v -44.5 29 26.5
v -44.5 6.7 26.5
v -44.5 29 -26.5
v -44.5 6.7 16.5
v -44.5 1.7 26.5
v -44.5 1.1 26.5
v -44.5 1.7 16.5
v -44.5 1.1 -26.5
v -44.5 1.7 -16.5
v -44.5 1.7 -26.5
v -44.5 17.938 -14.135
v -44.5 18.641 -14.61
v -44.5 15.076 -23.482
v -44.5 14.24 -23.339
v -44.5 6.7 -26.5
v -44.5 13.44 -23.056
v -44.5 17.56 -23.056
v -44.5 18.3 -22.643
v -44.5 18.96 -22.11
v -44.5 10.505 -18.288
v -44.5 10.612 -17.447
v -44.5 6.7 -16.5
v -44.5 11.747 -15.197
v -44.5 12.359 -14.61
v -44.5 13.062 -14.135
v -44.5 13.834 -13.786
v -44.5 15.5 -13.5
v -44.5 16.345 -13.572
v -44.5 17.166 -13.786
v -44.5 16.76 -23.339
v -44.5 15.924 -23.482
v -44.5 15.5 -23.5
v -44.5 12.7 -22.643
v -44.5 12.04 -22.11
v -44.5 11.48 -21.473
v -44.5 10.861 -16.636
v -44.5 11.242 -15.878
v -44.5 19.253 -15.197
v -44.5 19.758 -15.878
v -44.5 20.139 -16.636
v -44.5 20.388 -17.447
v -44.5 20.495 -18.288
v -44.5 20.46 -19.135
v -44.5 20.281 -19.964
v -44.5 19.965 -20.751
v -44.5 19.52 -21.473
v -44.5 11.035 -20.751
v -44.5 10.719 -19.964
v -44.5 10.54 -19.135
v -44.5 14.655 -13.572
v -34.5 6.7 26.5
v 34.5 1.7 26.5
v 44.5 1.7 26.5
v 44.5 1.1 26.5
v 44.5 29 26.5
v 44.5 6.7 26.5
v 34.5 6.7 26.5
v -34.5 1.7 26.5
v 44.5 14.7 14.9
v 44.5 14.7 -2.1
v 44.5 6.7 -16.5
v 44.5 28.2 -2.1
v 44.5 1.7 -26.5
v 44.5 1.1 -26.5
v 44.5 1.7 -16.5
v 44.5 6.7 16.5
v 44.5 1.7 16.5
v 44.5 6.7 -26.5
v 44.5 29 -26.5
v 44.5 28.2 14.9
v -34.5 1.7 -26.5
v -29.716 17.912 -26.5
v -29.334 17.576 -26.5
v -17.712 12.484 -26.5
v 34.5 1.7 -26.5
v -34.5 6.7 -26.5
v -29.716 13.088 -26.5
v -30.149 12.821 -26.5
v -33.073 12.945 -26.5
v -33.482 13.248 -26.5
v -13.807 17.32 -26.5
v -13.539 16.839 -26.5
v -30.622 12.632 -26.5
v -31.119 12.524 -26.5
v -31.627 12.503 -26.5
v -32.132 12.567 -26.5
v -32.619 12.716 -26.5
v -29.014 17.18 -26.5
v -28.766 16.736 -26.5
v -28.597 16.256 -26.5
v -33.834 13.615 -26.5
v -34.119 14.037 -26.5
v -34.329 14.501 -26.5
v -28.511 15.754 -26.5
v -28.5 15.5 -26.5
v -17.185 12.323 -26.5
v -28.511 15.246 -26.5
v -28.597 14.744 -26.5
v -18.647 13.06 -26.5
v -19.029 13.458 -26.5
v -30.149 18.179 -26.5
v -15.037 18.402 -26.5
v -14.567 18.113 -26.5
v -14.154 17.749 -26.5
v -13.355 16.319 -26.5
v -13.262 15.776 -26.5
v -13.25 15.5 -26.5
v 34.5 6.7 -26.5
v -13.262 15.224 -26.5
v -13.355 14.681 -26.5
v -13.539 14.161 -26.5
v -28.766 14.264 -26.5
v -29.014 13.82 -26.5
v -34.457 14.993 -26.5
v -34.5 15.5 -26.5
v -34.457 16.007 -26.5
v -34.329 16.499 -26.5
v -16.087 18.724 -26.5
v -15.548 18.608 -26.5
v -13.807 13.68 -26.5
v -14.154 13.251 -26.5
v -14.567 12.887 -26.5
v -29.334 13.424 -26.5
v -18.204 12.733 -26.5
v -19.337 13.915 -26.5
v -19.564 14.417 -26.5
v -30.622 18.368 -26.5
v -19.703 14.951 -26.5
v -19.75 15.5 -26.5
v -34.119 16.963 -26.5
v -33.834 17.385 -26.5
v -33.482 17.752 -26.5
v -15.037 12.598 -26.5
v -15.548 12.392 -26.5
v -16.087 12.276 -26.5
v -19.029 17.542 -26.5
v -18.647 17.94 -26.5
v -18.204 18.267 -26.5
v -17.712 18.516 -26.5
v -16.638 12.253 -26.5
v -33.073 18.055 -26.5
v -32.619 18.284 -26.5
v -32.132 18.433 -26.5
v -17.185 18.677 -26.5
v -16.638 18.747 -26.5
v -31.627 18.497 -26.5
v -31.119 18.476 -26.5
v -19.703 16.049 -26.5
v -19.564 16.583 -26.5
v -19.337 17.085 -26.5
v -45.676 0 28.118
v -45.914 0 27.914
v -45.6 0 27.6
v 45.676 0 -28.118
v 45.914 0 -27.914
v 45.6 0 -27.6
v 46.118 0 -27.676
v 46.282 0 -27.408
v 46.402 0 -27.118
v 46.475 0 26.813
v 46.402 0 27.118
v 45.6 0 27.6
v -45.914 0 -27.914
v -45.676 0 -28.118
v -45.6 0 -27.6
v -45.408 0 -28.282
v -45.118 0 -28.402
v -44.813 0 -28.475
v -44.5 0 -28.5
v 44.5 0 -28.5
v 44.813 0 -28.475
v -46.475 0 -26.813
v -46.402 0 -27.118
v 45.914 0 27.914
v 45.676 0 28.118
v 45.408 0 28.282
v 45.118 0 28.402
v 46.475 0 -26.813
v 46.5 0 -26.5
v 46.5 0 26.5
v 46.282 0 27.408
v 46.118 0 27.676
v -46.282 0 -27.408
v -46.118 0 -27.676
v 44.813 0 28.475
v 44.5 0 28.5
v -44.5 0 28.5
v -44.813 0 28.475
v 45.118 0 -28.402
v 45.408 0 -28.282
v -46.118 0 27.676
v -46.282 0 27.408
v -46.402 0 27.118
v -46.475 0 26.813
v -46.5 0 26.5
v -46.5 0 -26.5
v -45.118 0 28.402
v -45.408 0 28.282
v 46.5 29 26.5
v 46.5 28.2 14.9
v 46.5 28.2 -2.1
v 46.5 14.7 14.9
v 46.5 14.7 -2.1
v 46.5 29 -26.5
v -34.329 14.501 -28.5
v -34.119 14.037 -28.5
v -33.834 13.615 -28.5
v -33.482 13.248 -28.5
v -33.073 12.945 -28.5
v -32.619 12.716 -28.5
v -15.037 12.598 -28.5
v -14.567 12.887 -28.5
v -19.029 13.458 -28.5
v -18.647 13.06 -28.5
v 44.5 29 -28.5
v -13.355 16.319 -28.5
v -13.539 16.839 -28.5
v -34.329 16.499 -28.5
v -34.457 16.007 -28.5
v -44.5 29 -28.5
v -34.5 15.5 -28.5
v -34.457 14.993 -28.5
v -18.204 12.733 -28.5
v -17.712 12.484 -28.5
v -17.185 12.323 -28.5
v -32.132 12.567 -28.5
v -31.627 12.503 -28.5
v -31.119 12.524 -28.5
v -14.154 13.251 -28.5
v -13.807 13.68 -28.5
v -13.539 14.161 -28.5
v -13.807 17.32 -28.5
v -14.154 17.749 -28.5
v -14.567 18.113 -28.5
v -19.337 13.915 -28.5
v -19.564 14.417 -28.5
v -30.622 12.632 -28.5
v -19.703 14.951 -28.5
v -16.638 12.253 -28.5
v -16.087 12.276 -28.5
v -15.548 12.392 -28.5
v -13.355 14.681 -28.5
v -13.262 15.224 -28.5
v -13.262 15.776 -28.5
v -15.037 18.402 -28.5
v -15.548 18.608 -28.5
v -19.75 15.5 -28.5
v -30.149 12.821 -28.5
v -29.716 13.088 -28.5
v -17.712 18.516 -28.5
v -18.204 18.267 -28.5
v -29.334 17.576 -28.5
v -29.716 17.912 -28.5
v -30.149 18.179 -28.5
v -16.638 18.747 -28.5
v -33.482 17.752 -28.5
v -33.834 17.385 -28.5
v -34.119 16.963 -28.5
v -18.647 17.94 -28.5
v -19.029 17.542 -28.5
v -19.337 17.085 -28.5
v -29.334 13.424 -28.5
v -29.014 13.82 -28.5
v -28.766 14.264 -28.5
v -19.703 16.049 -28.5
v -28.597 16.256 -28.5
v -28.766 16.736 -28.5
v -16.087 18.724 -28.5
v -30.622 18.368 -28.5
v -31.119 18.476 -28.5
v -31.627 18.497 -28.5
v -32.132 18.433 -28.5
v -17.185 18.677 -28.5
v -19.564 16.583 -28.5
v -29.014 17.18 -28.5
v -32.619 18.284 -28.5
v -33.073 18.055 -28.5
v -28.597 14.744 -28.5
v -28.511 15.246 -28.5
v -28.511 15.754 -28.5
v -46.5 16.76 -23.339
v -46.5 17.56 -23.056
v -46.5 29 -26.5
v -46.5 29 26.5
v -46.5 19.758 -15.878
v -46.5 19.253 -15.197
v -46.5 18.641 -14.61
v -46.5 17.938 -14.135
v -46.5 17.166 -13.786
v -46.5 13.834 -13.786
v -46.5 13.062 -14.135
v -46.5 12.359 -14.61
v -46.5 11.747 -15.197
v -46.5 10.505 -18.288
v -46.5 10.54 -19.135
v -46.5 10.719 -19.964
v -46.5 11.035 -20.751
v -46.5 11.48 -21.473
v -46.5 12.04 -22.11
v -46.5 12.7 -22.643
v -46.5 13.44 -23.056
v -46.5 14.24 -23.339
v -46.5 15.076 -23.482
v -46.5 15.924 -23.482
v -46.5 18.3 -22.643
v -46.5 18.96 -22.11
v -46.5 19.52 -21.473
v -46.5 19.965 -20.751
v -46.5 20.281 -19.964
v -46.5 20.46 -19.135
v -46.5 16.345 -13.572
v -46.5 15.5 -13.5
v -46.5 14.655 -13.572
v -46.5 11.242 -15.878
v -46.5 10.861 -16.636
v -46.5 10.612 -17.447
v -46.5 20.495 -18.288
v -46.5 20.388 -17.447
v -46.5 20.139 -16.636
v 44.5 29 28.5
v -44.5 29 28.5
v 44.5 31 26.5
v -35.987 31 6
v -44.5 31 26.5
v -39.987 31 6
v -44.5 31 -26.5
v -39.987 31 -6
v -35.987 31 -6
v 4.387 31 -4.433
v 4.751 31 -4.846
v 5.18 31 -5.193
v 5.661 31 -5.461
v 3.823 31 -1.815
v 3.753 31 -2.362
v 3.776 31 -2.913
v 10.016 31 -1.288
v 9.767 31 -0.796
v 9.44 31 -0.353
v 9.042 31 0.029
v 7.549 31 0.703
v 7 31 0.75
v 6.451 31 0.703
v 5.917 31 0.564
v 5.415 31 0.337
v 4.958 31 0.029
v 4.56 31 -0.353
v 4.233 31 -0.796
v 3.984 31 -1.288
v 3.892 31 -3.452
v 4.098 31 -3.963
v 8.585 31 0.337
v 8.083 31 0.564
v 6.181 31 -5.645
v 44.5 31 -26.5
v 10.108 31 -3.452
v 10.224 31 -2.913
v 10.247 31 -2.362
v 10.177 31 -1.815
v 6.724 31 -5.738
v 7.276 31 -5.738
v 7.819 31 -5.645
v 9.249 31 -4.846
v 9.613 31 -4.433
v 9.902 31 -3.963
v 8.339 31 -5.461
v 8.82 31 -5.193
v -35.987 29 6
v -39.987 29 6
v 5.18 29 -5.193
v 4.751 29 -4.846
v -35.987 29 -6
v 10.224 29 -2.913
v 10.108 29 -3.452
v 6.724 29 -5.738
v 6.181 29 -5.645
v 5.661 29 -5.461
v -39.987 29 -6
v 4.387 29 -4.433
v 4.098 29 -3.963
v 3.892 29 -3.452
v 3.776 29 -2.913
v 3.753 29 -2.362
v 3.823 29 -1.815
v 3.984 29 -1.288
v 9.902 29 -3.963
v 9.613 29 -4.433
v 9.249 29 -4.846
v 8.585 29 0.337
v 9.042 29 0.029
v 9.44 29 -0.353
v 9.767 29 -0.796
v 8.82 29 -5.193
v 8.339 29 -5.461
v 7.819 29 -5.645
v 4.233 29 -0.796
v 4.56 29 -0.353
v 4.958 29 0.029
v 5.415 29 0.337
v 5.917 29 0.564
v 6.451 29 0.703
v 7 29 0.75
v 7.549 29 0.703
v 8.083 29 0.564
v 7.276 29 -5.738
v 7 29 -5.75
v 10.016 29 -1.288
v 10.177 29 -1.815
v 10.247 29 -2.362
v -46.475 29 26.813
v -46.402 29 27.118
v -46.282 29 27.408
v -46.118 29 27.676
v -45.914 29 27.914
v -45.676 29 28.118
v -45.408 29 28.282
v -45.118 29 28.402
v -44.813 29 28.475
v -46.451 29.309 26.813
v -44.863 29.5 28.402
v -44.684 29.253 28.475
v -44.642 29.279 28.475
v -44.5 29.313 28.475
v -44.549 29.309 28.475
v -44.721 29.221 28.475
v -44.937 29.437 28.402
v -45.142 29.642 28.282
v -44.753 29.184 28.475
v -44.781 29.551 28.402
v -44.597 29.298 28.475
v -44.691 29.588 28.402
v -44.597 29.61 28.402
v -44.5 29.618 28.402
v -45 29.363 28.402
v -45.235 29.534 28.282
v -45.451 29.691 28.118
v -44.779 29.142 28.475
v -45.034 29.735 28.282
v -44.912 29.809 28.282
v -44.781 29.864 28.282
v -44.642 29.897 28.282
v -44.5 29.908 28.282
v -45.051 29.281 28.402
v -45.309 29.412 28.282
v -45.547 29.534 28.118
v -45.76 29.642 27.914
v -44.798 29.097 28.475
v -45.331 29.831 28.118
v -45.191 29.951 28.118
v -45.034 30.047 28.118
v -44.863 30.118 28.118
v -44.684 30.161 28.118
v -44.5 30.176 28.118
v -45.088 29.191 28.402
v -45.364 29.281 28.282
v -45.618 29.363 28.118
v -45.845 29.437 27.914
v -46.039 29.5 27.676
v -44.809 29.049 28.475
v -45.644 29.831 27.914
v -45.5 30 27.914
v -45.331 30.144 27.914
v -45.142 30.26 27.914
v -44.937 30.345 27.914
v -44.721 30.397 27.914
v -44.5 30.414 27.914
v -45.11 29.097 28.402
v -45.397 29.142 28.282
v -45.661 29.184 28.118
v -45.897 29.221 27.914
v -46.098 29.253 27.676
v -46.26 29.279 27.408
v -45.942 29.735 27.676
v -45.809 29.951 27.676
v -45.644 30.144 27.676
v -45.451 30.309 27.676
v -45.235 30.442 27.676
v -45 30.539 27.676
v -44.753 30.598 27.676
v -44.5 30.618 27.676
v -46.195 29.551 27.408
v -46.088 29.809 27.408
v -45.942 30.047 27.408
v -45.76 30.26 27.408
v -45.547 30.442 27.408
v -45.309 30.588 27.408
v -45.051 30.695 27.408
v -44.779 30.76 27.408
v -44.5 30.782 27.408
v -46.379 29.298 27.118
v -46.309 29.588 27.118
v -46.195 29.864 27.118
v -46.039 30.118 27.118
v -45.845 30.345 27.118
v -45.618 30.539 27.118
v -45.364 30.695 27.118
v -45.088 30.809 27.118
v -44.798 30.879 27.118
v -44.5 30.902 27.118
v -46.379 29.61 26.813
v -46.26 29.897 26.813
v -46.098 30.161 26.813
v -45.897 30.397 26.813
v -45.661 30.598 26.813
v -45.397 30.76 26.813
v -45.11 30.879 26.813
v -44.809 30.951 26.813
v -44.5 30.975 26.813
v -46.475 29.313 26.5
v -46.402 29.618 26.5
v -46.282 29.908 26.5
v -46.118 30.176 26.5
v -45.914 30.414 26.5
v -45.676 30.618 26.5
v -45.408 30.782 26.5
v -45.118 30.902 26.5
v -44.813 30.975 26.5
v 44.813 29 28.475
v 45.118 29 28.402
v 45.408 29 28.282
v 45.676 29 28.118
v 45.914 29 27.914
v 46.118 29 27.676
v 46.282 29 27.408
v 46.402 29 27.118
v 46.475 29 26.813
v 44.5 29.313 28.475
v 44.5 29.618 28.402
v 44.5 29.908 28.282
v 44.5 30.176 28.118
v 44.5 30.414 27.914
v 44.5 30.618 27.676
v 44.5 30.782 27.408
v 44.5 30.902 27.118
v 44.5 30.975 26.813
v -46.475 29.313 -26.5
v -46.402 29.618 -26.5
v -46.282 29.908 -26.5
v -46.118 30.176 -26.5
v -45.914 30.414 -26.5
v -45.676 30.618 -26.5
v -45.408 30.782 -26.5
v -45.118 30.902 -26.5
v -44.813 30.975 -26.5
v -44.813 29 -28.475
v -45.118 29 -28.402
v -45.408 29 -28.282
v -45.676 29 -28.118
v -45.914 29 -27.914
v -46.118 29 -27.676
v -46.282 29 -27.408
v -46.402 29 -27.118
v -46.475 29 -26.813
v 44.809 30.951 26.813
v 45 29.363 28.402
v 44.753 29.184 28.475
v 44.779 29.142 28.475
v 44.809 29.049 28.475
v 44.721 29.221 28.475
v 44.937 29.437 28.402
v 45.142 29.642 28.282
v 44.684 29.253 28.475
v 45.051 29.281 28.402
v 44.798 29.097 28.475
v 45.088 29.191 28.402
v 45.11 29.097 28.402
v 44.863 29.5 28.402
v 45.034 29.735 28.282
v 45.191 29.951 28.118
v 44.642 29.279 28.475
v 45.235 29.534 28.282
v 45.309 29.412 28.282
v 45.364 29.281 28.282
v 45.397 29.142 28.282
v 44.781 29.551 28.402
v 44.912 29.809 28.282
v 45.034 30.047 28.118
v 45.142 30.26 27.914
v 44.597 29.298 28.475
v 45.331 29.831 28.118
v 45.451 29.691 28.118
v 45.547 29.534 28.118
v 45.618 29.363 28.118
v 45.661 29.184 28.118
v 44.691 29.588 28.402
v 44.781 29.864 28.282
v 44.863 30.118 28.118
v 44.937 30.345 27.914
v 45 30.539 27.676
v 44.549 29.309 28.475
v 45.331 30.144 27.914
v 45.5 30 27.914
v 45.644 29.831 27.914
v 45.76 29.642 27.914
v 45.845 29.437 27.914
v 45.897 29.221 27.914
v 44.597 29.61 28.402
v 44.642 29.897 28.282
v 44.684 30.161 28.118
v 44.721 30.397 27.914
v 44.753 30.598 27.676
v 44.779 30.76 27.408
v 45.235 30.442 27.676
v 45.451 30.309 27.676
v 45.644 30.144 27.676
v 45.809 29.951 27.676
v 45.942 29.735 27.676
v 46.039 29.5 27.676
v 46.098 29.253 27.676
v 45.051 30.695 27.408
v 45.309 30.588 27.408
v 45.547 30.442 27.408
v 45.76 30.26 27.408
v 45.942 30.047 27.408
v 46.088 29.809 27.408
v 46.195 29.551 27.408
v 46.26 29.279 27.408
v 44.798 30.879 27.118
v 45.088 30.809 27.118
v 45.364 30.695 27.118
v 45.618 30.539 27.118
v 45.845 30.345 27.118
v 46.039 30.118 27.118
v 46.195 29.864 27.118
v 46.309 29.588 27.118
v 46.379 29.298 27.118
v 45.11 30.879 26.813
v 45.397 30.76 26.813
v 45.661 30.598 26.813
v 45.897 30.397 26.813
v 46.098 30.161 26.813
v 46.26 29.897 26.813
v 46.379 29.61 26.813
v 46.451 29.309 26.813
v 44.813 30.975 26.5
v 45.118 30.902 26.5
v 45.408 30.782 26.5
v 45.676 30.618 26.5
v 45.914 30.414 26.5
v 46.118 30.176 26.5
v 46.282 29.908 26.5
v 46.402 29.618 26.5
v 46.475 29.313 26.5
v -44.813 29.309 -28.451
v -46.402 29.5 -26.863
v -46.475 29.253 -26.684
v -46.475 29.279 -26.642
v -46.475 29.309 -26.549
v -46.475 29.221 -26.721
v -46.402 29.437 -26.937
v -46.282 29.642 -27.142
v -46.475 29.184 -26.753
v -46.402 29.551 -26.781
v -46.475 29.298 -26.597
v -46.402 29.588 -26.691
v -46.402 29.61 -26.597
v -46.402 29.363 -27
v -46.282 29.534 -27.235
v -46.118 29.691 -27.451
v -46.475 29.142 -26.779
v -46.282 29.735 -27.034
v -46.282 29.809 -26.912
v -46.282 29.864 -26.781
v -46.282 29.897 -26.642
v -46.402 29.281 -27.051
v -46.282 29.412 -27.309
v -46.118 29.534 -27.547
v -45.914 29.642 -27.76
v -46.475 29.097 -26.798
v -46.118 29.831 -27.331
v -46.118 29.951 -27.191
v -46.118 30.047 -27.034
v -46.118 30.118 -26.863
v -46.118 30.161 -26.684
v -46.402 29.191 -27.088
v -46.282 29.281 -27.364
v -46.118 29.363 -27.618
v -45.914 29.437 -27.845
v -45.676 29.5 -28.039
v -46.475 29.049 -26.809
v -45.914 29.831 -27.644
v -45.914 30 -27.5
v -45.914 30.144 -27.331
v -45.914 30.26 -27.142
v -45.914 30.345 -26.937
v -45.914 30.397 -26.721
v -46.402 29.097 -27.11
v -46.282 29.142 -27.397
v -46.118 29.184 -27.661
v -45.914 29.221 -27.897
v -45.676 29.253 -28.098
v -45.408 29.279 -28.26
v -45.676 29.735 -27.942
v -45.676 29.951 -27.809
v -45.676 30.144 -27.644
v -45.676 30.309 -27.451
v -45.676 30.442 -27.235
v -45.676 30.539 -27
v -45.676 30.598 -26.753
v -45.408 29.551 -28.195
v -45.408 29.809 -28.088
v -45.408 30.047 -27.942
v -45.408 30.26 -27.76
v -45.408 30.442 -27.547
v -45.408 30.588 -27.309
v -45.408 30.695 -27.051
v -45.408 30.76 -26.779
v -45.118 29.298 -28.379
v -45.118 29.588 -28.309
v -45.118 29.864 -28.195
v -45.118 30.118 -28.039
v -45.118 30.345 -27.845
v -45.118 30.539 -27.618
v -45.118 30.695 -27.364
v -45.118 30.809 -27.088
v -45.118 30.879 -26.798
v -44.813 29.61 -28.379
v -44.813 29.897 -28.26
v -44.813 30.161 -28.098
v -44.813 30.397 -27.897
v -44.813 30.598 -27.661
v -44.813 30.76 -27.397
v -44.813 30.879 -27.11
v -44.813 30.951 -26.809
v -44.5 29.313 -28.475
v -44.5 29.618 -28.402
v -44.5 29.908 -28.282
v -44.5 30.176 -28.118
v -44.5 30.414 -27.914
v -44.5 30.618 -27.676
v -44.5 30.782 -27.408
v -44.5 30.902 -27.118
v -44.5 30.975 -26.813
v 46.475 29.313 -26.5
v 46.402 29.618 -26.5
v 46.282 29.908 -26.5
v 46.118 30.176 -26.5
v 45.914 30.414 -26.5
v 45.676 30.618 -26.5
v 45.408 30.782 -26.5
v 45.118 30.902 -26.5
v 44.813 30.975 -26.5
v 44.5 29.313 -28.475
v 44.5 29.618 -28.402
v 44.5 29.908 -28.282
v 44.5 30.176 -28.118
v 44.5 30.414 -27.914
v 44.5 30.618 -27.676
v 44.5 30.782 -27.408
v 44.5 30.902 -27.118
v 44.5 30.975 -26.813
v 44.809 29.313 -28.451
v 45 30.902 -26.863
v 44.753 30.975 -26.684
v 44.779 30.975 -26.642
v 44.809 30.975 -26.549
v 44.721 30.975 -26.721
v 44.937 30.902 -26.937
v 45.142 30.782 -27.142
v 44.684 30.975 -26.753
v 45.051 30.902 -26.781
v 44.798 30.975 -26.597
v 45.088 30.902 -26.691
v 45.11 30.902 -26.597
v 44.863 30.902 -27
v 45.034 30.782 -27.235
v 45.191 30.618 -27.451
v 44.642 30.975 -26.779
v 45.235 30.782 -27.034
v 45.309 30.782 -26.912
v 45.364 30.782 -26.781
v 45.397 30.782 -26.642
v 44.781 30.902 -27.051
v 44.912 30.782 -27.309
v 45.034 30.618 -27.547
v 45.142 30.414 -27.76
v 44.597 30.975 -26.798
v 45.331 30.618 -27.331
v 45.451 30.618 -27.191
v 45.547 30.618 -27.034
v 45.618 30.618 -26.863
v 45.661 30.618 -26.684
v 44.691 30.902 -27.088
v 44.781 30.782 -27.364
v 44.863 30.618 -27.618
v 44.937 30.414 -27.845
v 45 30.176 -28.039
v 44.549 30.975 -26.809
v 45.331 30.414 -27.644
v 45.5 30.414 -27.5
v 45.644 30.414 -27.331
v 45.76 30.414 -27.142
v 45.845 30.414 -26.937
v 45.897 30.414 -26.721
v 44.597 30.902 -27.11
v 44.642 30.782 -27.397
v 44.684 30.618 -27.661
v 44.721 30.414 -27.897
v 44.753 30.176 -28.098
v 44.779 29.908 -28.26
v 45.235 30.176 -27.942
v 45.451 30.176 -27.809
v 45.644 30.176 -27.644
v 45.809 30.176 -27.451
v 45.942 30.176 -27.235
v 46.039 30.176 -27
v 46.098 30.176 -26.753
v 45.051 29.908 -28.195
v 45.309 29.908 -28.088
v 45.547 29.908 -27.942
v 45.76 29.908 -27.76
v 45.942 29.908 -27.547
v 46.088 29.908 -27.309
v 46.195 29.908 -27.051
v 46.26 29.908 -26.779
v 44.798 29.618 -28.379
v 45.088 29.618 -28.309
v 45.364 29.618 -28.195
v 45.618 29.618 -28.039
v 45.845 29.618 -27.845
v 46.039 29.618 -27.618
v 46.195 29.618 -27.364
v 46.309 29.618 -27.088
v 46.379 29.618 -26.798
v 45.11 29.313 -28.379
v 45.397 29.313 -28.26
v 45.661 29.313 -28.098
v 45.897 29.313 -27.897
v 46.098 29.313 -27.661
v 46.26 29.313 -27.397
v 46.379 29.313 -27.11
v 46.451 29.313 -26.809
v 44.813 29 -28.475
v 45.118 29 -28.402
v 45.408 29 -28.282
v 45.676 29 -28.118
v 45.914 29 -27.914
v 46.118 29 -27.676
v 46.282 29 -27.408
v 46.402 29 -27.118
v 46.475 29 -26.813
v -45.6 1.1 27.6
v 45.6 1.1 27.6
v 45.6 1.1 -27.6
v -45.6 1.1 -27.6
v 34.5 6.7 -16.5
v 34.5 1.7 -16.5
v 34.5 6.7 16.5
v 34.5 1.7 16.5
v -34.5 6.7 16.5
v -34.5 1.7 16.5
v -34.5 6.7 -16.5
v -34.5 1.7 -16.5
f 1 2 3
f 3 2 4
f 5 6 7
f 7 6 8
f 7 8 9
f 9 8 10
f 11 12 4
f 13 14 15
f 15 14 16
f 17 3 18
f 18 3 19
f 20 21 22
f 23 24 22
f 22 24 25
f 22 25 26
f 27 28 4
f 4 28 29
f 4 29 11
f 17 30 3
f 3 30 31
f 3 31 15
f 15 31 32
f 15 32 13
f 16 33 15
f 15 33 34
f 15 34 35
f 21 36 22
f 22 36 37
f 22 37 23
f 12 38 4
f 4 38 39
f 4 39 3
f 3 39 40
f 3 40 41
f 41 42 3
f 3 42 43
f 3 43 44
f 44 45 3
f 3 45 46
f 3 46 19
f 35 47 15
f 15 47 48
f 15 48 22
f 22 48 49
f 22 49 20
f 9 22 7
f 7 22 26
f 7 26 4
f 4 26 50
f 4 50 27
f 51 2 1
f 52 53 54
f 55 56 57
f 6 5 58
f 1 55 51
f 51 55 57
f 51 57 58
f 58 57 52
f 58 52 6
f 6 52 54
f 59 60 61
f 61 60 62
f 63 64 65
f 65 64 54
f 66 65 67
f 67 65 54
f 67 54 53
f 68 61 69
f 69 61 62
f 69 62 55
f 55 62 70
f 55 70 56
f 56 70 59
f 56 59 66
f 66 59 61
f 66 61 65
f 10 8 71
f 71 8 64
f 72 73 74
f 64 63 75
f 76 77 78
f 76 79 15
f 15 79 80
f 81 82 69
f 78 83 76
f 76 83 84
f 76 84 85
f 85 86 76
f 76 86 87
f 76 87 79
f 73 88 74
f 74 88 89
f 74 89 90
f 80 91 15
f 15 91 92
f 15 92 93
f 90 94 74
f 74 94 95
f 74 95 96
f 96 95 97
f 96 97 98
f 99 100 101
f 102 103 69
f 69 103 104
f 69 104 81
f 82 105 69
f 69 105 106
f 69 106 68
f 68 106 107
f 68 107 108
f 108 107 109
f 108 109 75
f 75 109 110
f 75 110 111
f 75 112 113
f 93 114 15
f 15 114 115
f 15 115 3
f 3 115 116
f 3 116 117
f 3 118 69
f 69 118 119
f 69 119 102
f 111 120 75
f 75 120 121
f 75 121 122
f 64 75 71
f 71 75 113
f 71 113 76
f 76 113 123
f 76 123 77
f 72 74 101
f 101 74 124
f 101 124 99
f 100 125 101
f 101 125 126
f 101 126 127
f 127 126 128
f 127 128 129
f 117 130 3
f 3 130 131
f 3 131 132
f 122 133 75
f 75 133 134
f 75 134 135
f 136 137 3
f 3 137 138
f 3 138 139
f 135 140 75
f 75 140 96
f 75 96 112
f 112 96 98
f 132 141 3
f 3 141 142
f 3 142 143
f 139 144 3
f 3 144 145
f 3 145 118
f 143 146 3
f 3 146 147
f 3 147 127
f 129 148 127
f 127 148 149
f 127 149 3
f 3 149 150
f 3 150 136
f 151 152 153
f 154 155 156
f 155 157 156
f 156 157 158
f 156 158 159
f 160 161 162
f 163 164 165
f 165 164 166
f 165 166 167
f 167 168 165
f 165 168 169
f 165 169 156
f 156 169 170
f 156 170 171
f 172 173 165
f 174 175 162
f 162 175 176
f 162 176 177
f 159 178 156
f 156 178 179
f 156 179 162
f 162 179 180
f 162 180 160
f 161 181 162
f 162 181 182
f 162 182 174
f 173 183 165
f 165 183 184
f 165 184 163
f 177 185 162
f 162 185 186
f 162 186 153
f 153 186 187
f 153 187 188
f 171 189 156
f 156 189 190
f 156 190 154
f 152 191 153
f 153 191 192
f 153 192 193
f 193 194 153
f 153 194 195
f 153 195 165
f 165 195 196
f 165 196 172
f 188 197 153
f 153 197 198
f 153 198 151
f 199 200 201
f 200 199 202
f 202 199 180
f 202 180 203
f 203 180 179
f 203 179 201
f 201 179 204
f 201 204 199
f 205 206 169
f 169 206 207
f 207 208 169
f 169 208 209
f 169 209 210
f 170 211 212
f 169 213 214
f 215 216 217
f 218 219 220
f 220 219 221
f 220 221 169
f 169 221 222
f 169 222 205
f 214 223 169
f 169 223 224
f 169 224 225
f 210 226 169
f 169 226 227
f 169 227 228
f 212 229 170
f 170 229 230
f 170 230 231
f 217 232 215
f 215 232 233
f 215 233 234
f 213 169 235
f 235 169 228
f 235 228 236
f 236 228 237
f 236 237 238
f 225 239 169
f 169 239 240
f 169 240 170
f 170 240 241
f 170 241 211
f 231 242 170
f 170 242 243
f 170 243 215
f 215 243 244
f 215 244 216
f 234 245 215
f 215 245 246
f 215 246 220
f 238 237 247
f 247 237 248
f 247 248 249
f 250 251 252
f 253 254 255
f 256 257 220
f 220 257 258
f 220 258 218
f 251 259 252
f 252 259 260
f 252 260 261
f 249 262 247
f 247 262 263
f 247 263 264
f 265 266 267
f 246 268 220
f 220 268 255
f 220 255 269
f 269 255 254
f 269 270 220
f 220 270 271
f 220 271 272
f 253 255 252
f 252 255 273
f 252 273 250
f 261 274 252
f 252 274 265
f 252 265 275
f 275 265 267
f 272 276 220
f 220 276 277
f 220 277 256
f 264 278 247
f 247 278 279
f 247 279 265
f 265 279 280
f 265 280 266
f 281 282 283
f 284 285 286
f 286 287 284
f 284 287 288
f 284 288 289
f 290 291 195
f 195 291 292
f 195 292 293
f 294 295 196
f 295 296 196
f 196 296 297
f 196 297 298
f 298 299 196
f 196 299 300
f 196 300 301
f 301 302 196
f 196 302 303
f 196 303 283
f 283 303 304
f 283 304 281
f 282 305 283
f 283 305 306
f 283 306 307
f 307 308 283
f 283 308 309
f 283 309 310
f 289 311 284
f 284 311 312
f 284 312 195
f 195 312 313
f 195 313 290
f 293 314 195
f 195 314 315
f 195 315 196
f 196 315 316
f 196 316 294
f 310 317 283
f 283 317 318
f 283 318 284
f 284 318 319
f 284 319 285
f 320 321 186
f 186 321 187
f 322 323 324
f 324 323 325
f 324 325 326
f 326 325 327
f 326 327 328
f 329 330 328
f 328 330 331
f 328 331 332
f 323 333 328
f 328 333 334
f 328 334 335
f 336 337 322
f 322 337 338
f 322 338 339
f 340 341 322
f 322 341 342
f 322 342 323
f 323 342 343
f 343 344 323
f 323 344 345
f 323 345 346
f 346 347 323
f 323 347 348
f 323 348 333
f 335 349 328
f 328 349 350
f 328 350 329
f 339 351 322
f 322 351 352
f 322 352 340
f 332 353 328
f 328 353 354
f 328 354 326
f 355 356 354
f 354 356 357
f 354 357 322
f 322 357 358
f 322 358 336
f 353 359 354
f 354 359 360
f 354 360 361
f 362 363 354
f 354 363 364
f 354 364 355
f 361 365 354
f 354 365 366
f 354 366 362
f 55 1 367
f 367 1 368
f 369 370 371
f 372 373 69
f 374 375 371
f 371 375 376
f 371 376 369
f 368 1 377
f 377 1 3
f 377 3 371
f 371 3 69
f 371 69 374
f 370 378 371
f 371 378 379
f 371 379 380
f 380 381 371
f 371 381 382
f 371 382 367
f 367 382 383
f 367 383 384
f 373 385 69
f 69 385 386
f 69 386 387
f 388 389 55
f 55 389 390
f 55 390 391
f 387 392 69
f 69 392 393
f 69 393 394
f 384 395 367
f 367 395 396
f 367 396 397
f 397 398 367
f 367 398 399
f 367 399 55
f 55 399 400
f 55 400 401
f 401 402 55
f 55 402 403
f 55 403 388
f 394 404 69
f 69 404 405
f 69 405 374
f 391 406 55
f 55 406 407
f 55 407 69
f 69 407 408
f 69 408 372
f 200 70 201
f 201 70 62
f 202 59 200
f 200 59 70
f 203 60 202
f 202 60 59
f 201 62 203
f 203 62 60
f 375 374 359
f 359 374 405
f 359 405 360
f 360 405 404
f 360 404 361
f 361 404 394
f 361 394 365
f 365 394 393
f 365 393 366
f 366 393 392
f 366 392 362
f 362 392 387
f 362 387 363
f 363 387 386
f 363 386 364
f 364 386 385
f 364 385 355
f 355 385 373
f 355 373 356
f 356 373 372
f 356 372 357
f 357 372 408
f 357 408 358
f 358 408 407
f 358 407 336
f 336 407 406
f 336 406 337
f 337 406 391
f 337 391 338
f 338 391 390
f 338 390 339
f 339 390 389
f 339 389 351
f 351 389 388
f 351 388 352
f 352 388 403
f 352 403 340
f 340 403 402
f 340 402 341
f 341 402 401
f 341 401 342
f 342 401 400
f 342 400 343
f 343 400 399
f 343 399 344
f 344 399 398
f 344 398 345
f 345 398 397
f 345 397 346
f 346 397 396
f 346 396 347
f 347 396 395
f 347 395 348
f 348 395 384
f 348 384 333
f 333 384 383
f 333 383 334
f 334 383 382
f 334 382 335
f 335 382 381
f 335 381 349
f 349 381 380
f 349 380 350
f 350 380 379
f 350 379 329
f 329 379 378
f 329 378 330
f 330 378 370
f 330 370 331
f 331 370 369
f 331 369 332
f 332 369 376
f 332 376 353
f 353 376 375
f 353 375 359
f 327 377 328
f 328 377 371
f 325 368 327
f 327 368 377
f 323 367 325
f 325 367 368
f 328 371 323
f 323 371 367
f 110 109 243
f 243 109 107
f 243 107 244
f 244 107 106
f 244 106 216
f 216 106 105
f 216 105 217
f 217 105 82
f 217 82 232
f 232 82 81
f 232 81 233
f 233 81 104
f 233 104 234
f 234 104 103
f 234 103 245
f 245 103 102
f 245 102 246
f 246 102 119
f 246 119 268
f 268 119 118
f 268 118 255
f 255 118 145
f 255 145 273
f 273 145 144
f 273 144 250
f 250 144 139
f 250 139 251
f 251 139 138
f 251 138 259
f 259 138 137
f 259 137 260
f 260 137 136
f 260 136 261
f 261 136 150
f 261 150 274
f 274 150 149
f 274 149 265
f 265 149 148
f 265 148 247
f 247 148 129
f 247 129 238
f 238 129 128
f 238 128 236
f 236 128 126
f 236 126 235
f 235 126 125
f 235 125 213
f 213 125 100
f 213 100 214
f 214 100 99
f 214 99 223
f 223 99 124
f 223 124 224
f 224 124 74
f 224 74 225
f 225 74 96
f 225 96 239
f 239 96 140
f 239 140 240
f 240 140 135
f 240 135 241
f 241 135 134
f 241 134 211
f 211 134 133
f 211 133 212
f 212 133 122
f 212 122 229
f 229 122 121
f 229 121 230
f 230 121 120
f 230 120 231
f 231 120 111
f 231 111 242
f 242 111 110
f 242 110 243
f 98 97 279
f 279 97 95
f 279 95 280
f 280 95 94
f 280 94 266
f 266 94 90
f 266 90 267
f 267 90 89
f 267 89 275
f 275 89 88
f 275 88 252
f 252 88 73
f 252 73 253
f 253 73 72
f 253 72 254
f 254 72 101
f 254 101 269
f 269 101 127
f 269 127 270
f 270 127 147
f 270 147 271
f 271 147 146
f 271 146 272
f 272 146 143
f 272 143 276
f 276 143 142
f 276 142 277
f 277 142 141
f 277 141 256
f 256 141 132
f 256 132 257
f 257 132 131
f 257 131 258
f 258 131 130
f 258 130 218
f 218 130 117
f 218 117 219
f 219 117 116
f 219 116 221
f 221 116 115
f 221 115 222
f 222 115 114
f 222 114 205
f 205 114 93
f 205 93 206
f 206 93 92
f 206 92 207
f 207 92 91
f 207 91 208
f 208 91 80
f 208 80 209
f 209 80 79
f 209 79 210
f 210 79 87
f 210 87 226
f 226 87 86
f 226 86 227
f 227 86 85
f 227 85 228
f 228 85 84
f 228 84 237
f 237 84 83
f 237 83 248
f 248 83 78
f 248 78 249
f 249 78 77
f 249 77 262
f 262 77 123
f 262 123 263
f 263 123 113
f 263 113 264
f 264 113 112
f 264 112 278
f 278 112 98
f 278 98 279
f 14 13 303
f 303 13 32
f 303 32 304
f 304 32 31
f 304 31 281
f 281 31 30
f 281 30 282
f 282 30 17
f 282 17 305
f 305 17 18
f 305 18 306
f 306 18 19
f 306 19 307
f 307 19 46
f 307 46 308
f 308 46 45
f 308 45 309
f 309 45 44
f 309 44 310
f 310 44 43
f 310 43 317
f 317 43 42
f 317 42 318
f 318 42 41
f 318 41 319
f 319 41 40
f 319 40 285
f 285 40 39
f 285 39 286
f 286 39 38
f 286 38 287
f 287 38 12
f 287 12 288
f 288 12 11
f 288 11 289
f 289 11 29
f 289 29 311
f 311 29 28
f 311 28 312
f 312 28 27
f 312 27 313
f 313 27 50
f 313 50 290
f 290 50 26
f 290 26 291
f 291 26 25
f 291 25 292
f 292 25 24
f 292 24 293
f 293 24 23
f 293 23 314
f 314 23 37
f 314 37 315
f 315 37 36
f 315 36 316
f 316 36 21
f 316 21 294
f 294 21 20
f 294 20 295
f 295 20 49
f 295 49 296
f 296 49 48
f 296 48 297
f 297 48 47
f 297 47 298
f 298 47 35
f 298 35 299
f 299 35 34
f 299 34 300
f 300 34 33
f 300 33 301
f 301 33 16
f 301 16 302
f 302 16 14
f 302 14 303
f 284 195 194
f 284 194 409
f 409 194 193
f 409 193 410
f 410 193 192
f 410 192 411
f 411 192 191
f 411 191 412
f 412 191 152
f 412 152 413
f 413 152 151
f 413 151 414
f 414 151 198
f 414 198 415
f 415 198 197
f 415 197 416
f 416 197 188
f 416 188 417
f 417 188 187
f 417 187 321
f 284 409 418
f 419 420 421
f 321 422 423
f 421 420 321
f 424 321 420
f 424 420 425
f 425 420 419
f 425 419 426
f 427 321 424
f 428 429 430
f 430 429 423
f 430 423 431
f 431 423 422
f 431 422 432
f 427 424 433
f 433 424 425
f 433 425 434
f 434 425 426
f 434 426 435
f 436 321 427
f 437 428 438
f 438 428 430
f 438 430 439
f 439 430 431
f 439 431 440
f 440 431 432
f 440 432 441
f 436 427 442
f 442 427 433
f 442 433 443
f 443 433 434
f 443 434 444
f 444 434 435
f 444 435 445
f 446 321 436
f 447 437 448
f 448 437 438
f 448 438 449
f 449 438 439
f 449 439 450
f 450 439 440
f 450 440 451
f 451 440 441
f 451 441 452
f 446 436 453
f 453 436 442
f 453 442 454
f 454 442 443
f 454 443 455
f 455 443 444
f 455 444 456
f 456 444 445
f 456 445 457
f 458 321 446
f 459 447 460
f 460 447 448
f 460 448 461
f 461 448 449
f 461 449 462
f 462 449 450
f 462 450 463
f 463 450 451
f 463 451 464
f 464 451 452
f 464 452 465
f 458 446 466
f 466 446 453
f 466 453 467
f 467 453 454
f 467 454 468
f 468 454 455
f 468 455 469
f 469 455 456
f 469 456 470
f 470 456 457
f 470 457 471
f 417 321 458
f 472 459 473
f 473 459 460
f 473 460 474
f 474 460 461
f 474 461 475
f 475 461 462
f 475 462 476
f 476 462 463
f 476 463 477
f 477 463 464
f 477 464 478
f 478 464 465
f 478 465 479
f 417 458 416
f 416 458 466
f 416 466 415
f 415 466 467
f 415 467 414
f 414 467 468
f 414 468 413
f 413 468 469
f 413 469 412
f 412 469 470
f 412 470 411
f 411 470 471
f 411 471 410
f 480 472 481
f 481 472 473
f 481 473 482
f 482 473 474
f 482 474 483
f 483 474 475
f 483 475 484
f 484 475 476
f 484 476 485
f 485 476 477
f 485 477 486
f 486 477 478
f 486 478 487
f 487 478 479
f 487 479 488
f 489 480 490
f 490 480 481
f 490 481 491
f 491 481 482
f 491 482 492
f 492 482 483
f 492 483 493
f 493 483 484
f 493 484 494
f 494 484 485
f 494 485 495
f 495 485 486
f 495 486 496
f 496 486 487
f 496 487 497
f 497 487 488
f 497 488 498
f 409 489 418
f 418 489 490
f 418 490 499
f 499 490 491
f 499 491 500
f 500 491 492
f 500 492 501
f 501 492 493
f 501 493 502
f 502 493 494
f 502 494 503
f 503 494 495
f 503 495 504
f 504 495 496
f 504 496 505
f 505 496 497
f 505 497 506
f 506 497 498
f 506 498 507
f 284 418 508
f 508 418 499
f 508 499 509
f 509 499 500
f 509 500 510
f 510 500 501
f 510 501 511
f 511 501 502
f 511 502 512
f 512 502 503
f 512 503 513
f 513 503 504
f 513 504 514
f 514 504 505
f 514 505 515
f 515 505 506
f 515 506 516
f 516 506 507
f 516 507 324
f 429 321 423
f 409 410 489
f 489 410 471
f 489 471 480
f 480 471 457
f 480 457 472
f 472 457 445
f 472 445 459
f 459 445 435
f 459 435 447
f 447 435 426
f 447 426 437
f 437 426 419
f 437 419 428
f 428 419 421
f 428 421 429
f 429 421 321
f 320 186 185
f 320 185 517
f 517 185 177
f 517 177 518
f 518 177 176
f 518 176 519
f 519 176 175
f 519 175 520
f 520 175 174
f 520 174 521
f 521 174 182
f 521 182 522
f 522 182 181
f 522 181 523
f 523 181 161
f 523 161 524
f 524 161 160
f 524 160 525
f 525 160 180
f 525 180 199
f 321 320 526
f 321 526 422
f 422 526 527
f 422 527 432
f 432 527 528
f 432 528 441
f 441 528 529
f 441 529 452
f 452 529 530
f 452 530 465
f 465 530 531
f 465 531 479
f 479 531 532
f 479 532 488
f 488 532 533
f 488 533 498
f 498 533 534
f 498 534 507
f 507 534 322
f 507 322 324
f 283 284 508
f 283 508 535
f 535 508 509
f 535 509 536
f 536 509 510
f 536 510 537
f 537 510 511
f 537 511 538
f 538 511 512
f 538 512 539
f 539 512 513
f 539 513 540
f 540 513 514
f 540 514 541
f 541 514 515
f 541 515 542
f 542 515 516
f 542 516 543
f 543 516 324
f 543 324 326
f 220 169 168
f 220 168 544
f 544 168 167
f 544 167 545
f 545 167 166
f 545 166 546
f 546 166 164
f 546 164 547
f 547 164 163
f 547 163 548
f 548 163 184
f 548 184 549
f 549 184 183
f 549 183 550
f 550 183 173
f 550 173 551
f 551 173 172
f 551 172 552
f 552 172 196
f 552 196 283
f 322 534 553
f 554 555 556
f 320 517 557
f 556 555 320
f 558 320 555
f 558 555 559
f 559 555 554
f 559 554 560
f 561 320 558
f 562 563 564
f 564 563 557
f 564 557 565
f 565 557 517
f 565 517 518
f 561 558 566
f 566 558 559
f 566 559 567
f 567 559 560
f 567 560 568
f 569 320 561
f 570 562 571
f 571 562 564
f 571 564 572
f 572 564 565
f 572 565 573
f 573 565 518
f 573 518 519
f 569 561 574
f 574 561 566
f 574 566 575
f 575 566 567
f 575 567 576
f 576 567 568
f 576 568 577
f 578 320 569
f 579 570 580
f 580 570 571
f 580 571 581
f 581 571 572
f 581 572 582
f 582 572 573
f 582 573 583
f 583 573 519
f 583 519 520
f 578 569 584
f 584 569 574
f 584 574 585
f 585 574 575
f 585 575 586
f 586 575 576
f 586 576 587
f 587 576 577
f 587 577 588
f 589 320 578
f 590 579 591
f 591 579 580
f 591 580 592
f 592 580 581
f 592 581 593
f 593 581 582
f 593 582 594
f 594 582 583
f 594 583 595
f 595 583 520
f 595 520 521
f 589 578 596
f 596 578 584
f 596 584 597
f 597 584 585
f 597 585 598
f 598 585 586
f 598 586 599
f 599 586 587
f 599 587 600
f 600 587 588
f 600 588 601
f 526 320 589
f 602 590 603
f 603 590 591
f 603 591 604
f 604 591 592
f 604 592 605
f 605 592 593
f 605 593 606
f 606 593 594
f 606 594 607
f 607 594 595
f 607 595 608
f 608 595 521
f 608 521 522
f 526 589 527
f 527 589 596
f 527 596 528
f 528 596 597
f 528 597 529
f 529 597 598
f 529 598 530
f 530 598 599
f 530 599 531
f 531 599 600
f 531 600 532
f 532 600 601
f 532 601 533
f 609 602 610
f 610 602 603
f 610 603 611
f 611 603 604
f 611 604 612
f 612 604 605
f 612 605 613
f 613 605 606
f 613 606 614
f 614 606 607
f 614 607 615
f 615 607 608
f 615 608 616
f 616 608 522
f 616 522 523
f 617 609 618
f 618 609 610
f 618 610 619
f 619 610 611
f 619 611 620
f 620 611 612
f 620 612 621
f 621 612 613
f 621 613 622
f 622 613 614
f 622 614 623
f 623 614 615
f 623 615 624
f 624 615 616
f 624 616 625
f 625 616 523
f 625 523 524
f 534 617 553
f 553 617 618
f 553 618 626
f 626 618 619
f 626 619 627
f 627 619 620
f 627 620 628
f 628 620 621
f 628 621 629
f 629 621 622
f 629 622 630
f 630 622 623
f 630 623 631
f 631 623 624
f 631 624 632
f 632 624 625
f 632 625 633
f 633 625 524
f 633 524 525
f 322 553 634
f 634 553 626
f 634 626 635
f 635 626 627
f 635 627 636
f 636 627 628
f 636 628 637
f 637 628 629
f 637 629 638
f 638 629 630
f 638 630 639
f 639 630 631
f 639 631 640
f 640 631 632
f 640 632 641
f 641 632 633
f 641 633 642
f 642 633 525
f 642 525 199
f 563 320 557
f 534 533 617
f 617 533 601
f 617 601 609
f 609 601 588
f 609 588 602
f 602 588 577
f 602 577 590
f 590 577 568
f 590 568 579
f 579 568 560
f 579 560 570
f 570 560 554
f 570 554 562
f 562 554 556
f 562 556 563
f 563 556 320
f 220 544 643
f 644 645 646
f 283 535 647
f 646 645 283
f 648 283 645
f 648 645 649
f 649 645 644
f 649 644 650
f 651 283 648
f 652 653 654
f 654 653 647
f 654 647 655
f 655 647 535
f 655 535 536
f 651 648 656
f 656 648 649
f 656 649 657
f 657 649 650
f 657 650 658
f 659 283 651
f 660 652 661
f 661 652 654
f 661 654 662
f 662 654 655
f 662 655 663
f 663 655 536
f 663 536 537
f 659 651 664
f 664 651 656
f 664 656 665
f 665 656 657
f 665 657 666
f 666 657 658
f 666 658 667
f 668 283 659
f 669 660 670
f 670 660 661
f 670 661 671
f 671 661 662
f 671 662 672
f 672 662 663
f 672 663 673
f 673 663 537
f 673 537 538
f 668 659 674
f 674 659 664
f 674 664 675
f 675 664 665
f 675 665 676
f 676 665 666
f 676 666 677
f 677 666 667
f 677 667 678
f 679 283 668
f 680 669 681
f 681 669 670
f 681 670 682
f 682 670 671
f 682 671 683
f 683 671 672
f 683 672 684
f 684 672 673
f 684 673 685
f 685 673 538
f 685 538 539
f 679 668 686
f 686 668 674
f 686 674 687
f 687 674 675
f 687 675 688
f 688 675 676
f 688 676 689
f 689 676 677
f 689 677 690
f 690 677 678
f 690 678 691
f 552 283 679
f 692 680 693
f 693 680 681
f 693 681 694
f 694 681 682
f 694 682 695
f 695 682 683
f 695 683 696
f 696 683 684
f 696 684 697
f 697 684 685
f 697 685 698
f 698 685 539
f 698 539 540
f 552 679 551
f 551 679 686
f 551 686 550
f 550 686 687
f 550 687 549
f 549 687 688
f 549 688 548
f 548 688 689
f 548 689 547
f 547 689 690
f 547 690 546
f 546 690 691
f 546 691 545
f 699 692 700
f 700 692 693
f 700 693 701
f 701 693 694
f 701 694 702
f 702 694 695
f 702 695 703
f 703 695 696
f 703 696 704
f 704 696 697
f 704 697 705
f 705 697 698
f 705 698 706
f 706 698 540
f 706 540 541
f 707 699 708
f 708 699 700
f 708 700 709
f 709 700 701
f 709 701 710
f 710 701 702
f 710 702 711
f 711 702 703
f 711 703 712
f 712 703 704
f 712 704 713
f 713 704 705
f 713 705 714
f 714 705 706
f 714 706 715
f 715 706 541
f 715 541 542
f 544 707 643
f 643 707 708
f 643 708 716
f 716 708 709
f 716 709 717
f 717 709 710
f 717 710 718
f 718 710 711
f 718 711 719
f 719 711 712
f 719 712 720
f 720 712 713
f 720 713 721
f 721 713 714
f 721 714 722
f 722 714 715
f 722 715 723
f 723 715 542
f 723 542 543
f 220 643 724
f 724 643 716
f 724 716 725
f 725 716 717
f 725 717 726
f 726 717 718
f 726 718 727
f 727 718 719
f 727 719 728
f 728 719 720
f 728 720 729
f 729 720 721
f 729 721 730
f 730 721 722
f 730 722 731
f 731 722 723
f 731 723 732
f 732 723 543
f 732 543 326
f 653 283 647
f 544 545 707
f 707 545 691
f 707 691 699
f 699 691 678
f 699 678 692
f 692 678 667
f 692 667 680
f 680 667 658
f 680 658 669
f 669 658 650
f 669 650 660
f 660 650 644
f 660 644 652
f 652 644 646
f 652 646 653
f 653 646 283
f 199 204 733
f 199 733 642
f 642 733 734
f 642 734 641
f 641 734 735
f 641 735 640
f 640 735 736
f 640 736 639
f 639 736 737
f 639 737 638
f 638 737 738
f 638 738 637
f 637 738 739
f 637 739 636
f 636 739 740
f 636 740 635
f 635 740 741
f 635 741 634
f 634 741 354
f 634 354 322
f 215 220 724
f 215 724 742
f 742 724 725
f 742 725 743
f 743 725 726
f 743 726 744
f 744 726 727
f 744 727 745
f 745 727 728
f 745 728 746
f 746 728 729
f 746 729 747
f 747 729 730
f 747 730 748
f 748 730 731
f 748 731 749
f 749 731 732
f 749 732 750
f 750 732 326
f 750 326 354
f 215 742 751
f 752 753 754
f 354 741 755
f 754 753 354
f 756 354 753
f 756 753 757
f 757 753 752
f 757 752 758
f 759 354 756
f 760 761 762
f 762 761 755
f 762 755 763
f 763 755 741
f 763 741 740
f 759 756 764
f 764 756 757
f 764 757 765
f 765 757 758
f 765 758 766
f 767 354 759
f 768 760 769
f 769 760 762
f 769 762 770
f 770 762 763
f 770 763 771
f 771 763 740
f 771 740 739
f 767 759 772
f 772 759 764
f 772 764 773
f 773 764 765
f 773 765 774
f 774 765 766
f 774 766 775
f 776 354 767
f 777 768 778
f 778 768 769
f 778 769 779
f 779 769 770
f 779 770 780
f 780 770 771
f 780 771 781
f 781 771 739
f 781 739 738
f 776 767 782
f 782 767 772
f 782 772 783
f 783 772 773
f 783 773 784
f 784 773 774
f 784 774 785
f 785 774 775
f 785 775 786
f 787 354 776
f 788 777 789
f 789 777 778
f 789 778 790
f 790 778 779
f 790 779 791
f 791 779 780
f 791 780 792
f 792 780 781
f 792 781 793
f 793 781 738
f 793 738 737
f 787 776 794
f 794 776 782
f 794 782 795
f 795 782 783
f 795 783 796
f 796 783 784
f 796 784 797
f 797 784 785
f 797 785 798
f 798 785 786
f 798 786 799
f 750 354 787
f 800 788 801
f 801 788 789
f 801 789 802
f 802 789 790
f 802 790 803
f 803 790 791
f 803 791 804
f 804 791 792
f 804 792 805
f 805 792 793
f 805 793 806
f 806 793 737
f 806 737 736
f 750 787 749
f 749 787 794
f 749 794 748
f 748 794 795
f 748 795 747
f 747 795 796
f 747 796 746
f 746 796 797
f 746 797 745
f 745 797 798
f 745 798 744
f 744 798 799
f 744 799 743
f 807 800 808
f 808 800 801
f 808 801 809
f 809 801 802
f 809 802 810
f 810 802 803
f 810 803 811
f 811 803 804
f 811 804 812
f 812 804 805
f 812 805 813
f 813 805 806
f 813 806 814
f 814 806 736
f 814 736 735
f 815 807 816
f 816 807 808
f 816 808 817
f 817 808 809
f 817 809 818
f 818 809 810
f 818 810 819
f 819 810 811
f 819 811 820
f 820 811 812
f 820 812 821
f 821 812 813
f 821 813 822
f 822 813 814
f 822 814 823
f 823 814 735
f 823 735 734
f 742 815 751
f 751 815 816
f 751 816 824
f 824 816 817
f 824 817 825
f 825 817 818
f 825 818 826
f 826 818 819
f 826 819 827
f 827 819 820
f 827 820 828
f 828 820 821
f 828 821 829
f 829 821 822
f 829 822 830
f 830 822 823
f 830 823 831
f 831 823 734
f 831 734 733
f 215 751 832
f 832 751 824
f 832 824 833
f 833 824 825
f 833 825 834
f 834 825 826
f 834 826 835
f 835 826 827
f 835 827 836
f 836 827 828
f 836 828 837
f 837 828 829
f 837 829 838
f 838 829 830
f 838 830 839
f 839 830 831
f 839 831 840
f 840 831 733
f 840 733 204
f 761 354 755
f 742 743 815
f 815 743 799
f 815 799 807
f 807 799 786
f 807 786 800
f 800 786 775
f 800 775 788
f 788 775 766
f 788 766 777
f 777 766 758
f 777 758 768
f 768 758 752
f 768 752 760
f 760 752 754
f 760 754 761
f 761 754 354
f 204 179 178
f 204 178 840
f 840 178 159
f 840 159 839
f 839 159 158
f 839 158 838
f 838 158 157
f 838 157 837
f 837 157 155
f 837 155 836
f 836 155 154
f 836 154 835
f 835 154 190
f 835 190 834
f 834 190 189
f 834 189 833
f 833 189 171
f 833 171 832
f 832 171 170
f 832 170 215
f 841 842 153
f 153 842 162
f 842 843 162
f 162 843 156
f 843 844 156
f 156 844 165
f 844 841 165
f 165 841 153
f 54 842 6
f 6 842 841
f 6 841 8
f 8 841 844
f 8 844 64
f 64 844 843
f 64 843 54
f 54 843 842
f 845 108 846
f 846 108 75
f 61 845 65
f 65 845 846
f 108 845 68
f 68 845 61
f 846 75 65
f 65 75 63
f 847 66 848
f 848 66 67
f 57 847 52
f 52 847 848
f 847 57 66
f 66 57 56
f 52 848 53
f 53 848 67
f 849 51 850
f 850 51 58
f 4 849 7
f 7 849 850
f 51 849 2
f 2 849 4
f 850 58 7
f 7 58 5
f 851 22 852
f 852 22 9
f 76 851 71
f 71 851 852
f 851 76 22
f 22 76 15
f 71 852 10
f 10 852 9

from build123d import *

# Parameters (mm, degrees)
SKETCH1_W           = 93
SKETCH1_H           = 57
BOSS_EXTRUDE1_DEPTH = 31
SHELL1_T            = -2
SKETCH2_W           = 17
SKETCH2_H           = 13.5
CUT_EXTRUDE1_DEPTH  = 2
SKETCH3_R           = 3.25
CUT_EXTRUDE2_DEPTH  = 2
SKETCH4_W           = 4
SKETCH4_H           = 12
CUT_EXTRUDE3_DEPTH  = 2
SKETCH5_R           = 3
SKETCH5_R_2         = 3.25
CUT_EXTRUDE4_DEPTH  = 2
SKETCH6_R           = 5
CUT_EXTRUDE5_DEPTH  = 2
FILLET1_R           = 2
SKETCH7_W           = 91.2
SKETCH7_H           = 55.2
SKETCH7_W_2         = 89
SKETCH7_H_2         = 53
CUT_EXTRUDE6_DEPTH  = 1.1
SKETCH8_W           = 10
SKETCH8_H           = 10
BOSS_EXTRUDE2_DEPTH = 5


with BuildPart() as part:
    # Sketch1 → Boss-Extrude1 (new body)
    with BuildSketch(Plane(origin=(0, 0, 0), x_dir=(1, 0, 0), z_dir=(0, 1, 0))):
        Rectangle(SKETCH1_W, SKETCH1_H)
    extrude(amount=BOSS_EXTRUDE1_DEPTH)

    # Shell1
    shell1_openings = [part.faces().sort_by_distance(p)[0] for p in [
        (0, 0, 0),
    ]]
    offset(amount=SHELL1_T, openings=shell1_openings, kind=Kind.INTERSECTION)

    # Sketch2 → Cut-Extrude1 (cut)
    with BuildSketch(Plane(origin=(46.5, 0, 0), x_dir=(0, 0, -1), z_dir=(1, 0, 0))):
        with Locations((-6.4, 21.45)):
            Rectangle(SKETCH2_W, SKETCH2_H)
    extrude(amount=-CUT_EXTRUDE1_DEPTH, mode=Mode.SUBTRACT)

    # Sketch3 → Cut-Extrude2 (cut)
    with BuildSketch(Plane(origin=(0, 31, 0), x_dir=(1, 0, 0), z_dir=(0, 1, 0))):
        with Locations((7, 2.5)):
            Circle(SKETCH3_R)
    extrude(amount=-CUT_EXTRUDE2_DEPTH, mode=Mode.SUBTRACT)

    # Sketch4 → Cut-Extrude3 (cut)
    with BuildSketch(Plane(origin=(0, 31, 0), x_dir=(1, 0, 0), z_dir=(0, 1, 0))):
        with Locations((-37.987270606, 0)):
            Rectangle(SKETCH4_W, SKETCH4_H)
    extrude(amount=-CUT_EXTRUDE3_DEPTH, mode=Mode.SUBTRACT)

    # Sketch5 → Cut-Extrude4 (cut)
    with BuildSketch(Plane(origin=(0, 0, -28.5), x_dir=(-1, 0, 0), z_dir=(0, 0, -1))):
        with Locations((31.5, 15.5)):
            Circle(SKETCH5_R)
        with Locations((16.5, 15.5)):
            Circle(SKETCH5_R_2)
    extrude(amount=-CUT_EXTRUDE4_DEPTH, mode=Mode.SUBTRACT)

    # Sketch6 → Cut-Extrude5 (cut)
    with BuildSketch(Plane.ZY.offset(46.5)):
        with Locations((-18.5, 15.5)):
            Circle(SKETCH6_R)
    extrude(amount=-CUT_EXTRUDE5_DEPTH, mode=Mode.SUBTRACT)

    # Fillet1
    fillet1_edges = [part.edges().sort_by_distance(p)[0] for p in [
        (-46.5, 31, 0),
        (0, 31, 28.5),
        (46.5, 31, 0),
        (46.5, 15.5, 28.5),
        (-46.5, 15.5, 28.5),
        (-46.5, 15.5, -28.5),
        (46.5, 15.5, -28.5),
        (0, 31, -28.5),
    ]]
    fillet(fillet1_edges, radius=FILLET1_R)

    # Sketch7 → Cut-Extrude6 (cut)
    with BuildSketch(Plane.XZ):
        Rectangle(SKETCH7_W, SKETCH7_H)
        Rectangle(SKETCH7_W_2, SKETCH7_H_2, mode=Mode.SUBTRACT)
    extrude(amount=-CUT_EXTRUDE6_DEPTH, mode=Mode.SUBTRACT)

    # Sketch8 → Boss-Extrude2 (add)
    with BuildSketch(Plane(origin=(0, 1.7, 0), x_dir=(-1, 0, 0), z_dir=(0, -1, 0))):
        with Locations((-39.5, 21.5)):
            Rectangle(SKETCH8_W, SKETCH8_H)
        with Locations((-39.5, -21.5)):
            Rectangle(SKETCH8_W, SKETCH8_H)
        with Locations((39.5, -21.5)):
            Rectangle(SKETCH8_W, SKETCH8_H)
        with Locations((39.5, 21.5)):
            Rectangle(SKETCH8_W, SKETCH8_H)
    extrude(amount=-BOSS_EXTRUDE2_DEPTH)


solid = part.part
